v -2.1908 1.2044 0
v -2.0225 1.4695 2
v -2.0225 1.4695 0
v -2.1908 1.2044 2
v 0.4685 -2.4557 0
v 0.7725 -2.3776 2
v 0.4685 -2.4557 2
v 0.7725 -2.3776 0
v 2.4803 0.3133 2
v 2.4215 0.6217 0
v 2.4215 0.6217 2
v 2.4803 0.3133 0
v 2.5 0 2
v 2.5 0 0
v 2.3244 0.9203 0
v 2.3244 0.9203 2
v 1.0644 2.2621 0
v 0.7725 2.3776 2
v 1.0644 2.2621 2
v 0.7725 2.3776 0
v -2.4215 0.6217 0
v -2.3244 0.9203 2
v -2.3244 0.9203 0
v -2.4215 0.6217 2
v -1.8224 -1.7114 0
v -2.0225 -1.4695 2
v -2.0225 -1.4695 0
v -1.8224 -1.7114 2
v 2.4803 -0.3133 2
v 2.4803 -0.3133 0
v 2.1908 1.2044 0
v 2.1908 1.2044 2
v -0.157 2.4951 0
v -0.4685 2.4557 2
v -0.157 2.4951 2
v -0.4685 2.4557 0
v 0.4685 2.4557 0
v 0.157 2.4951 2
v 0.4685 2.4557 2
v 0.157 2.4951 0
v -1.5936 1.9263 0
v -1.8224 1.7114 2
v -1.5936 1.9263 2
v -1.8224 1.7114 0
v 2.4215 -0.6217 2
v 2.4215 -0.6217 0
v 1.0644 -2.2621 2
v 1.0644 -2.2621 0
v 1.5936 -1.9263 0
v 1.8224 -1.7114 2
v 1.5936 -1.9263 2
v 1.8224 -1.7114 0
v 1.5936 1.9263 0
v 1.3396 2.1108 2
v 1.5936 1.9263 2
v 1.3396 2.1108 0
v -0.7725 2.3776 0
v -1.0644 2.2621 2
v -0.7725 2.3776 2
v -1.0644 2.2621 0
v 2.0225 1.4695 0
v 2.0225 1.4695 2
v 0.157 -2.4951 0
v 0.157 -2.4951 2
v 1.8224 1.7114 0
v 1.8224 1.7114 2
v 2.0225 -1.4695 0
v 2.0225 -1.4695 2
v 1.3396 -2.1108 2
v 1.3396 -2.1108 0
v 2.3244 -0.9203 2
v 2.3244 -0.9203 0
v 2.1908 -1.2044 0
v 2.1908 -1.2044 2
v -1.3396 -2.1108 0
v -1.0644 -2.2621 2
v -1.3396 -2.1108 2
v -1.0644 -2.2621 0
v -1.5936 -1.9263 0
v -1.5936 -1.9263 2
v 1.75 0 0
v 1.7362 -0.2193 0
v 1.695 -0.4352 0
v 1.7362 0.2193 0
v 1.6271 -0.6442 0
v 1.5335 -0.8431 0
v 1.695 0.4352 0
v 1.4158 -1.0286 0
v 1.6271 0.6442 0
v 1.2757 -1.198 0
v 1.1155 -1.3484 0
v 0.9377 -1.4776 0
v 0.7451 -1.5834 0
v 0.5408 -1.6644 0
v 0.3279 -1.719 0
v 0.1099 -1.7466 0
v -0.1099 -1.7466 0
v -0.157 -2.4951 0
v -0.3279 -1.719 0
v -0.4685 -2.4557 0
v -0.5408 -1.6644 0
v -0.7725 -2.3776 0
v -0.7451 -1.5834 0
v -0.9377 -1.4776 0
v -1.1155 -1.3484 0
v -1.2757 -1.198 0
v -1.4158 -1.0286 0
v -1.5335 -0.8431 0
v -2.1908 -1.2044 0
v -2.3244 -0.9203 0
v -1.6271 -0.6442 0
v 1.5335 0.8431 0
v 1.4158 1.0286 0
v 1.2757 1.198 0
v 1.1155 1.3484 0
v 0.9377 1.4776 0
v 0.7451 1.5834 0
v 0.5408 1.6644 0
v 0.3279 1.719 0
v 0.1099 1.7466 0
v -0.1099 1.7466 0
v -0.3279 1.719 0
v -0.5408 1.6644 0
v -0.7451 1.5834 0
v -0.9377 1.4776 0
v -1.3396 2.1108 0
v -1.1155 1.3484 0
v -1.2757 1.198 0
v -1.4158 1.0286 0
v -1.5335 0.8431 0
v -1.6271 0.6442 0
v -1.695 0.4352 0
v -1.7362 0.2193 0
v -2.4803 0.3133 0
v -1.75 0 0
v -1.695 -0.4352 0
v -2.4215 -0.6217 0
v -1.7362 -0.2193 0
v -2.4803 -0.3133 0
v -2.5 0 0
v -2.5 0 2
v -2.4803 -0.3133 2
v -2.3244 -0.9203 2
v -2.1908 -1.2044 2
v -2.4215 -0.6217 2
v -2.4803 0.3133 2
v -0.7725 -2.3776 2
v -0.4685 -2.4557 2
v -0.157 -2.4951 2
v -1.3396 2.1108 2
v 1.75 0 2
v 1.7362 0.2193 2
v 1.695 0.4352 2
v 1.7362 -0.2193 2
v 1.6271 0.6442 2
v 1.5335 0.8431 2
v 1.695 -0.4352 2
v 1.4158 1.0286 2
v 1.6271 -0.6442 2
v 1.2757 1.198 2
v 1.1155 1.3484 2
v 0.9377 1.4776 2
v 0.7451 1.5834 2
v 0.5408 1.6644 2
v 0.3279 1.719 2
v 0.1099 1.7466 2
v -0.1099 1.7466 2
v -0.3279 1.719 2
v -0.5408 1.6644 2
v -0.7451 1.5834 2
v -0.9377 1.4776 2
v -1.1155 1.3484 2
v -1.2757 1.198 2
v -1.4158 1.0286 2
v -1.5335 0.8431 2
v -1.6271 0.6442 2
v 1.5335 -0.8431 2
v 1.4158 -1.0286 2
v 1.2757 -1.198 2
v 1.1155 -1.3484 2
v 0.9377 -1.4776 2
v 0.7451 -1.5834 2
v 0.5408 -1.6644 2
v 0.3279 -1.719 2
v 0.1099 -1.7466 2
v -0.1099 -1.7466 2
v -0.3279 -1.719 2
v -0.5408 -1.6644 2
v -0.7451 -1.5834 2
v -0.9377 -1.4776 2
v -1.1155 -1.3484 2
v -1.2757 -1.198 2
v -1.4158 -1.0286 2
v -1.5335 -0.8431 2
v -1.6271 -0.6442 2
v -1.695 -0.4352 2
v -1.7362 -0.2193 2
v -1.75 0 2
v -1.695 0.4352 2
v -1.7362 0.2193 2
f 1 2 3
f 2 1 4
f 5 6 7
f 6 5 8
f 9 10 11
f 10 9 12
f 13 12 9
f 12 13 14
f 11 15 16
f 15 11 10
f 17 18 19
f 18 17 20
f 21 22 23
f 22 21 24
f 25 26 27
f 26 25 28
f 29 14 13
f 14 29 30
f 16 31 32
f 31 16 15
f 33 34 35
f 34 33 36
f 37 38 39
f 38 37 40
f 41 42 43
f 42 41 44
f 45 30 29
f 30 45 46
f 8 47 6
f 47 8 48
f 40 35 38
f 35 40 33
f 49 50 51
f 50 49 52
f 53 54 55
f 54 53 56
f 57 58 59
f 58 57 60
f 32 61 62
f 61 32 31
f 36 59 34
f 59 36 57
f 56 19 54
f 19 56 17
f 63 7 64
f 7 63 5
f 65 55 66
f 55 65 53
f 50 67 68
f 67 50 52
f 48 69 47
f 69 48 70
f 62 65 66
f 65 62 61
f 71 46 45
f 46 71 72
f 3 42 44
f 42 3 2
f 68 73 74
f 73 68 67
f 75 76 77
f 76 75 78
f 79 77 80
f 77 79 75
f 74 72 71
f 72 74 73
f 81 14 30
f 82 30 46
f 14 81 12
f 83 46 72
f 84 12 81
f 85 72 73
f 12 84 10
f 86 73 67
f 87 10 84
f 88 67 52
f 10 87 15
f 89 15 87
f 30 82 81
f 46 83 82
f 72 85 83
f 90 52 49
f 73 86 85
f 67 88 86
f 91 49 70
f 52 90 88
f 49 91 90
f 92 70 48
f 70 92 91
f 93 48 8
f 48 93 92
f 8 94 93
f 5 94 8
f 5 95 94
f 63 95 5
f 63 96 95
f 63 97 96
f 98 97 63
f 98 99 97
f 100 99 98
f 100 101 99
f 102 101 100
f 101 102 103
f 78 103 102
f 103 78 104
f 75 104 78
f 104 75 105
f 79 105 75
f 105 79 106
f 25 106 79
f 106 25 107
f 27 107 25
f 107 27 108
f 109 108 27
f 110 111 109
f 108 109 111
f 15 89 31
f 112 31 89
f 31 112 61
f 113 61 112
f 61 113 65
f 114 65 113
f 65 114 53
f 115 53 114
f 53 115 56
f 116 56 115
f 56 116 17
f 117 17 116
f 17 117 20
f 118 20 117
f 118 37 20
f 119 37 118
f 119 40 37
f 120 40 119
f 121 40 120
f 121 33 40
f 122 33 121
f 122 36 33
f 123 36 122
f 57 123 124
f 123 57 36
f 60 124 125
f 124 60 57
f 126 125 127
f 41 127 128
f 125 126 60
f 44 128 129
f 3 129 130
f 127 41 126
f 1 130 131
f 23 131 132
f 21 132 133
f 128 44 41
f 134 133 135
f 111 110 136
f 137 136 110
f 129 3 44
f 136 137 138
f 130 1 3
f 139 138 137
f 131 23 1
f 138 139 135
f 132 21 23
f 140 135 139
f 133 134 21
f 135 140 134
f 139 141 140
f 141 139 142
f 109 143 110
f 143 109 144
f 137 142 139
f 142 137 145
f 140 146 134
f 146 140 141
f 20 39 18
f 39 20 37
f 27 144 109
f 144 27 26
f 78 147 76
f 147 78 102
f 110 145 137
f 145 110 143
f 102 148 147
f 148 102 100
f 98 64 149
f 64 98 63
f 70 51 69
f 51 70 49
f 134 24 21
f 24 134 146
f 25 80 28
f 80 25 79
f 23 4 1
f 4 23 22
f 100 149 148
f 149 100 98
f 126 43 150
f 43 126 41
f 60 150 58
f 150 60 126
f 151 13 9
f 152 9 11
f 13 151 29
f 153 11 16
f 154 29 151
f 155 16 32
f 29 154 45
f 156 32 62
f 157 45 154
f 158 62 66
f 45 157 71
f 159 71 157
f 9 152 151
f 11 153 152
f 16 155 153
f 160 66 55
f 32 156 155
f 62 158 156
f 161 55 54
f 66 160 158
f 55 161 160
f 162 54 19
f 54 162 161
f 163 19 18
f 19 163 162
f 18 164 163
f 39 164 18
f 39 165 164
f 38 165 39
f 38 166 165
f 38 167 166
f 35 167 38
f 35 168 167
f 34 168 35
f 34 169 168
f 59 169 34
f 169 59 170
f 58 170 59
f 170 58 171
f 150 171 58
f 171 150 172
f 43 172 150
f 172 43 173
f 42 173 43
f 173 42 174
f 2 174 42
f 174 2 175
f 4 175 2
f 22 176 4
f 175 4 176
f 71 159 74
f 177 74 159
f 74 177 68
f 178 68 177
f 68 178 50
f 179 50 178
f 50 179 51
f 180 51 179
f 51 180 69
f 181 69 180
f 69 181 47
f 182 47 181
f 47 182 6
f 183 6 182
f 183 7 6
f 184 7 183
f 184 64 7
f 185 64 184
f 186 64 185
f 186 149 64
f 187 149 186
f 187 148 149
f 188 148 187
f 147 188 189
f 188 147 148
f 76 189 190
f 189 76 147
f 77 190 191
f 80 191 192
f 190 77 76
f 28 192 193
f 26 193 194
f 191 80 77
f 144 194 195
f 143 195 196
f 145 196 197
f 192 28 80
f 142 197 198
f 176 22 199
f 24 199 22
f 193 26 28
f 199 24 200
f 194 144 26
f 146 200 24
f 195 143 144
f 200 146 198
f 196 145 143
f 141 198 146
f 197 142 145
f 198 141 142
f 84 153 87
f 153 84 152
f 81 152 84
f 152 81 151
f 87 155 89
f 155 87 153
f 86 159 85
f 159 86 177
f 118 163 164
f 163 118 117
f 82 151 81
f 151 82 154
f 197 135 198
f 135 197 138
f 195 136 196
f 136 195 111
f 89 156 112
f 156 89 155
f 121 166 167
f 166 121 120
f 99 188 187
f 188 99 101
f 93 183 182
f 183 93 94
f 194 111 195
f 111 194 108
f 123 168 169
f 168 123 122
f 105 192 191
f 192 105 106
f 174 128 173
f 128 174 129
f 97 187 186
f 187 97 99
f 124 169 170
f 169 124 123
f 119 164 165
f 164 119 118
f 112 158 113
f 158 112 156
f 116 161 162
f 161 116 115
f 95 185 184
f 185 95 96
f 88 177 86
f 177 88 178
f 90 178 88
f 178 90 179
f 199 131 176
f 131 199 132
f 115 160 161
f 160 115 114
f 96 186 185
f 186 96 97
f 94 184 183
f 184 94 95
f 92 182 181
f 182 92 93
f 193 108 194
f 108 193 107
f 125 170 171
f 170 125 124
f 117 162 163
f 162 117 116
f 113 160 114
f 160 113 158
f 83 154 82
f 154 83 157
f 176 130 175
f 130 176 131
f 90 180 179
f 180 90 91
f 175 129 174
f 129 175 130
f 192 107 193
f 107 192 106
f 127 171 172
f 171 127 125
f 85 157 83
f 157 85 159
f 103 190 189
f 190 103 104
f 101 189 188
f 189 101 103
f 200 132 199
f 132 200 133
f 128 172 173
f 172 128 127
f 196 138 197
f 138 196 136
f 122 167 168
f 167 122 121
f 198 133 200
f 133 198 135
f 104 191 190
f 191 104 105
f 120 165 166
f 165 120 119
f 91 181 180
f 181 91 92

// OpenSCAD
$fn = 50;

difference(){
     cylinder(2, d=5, true);
     translate([0,0,-1]){
          cylinder(4, d=3.5, true);
     }
}
